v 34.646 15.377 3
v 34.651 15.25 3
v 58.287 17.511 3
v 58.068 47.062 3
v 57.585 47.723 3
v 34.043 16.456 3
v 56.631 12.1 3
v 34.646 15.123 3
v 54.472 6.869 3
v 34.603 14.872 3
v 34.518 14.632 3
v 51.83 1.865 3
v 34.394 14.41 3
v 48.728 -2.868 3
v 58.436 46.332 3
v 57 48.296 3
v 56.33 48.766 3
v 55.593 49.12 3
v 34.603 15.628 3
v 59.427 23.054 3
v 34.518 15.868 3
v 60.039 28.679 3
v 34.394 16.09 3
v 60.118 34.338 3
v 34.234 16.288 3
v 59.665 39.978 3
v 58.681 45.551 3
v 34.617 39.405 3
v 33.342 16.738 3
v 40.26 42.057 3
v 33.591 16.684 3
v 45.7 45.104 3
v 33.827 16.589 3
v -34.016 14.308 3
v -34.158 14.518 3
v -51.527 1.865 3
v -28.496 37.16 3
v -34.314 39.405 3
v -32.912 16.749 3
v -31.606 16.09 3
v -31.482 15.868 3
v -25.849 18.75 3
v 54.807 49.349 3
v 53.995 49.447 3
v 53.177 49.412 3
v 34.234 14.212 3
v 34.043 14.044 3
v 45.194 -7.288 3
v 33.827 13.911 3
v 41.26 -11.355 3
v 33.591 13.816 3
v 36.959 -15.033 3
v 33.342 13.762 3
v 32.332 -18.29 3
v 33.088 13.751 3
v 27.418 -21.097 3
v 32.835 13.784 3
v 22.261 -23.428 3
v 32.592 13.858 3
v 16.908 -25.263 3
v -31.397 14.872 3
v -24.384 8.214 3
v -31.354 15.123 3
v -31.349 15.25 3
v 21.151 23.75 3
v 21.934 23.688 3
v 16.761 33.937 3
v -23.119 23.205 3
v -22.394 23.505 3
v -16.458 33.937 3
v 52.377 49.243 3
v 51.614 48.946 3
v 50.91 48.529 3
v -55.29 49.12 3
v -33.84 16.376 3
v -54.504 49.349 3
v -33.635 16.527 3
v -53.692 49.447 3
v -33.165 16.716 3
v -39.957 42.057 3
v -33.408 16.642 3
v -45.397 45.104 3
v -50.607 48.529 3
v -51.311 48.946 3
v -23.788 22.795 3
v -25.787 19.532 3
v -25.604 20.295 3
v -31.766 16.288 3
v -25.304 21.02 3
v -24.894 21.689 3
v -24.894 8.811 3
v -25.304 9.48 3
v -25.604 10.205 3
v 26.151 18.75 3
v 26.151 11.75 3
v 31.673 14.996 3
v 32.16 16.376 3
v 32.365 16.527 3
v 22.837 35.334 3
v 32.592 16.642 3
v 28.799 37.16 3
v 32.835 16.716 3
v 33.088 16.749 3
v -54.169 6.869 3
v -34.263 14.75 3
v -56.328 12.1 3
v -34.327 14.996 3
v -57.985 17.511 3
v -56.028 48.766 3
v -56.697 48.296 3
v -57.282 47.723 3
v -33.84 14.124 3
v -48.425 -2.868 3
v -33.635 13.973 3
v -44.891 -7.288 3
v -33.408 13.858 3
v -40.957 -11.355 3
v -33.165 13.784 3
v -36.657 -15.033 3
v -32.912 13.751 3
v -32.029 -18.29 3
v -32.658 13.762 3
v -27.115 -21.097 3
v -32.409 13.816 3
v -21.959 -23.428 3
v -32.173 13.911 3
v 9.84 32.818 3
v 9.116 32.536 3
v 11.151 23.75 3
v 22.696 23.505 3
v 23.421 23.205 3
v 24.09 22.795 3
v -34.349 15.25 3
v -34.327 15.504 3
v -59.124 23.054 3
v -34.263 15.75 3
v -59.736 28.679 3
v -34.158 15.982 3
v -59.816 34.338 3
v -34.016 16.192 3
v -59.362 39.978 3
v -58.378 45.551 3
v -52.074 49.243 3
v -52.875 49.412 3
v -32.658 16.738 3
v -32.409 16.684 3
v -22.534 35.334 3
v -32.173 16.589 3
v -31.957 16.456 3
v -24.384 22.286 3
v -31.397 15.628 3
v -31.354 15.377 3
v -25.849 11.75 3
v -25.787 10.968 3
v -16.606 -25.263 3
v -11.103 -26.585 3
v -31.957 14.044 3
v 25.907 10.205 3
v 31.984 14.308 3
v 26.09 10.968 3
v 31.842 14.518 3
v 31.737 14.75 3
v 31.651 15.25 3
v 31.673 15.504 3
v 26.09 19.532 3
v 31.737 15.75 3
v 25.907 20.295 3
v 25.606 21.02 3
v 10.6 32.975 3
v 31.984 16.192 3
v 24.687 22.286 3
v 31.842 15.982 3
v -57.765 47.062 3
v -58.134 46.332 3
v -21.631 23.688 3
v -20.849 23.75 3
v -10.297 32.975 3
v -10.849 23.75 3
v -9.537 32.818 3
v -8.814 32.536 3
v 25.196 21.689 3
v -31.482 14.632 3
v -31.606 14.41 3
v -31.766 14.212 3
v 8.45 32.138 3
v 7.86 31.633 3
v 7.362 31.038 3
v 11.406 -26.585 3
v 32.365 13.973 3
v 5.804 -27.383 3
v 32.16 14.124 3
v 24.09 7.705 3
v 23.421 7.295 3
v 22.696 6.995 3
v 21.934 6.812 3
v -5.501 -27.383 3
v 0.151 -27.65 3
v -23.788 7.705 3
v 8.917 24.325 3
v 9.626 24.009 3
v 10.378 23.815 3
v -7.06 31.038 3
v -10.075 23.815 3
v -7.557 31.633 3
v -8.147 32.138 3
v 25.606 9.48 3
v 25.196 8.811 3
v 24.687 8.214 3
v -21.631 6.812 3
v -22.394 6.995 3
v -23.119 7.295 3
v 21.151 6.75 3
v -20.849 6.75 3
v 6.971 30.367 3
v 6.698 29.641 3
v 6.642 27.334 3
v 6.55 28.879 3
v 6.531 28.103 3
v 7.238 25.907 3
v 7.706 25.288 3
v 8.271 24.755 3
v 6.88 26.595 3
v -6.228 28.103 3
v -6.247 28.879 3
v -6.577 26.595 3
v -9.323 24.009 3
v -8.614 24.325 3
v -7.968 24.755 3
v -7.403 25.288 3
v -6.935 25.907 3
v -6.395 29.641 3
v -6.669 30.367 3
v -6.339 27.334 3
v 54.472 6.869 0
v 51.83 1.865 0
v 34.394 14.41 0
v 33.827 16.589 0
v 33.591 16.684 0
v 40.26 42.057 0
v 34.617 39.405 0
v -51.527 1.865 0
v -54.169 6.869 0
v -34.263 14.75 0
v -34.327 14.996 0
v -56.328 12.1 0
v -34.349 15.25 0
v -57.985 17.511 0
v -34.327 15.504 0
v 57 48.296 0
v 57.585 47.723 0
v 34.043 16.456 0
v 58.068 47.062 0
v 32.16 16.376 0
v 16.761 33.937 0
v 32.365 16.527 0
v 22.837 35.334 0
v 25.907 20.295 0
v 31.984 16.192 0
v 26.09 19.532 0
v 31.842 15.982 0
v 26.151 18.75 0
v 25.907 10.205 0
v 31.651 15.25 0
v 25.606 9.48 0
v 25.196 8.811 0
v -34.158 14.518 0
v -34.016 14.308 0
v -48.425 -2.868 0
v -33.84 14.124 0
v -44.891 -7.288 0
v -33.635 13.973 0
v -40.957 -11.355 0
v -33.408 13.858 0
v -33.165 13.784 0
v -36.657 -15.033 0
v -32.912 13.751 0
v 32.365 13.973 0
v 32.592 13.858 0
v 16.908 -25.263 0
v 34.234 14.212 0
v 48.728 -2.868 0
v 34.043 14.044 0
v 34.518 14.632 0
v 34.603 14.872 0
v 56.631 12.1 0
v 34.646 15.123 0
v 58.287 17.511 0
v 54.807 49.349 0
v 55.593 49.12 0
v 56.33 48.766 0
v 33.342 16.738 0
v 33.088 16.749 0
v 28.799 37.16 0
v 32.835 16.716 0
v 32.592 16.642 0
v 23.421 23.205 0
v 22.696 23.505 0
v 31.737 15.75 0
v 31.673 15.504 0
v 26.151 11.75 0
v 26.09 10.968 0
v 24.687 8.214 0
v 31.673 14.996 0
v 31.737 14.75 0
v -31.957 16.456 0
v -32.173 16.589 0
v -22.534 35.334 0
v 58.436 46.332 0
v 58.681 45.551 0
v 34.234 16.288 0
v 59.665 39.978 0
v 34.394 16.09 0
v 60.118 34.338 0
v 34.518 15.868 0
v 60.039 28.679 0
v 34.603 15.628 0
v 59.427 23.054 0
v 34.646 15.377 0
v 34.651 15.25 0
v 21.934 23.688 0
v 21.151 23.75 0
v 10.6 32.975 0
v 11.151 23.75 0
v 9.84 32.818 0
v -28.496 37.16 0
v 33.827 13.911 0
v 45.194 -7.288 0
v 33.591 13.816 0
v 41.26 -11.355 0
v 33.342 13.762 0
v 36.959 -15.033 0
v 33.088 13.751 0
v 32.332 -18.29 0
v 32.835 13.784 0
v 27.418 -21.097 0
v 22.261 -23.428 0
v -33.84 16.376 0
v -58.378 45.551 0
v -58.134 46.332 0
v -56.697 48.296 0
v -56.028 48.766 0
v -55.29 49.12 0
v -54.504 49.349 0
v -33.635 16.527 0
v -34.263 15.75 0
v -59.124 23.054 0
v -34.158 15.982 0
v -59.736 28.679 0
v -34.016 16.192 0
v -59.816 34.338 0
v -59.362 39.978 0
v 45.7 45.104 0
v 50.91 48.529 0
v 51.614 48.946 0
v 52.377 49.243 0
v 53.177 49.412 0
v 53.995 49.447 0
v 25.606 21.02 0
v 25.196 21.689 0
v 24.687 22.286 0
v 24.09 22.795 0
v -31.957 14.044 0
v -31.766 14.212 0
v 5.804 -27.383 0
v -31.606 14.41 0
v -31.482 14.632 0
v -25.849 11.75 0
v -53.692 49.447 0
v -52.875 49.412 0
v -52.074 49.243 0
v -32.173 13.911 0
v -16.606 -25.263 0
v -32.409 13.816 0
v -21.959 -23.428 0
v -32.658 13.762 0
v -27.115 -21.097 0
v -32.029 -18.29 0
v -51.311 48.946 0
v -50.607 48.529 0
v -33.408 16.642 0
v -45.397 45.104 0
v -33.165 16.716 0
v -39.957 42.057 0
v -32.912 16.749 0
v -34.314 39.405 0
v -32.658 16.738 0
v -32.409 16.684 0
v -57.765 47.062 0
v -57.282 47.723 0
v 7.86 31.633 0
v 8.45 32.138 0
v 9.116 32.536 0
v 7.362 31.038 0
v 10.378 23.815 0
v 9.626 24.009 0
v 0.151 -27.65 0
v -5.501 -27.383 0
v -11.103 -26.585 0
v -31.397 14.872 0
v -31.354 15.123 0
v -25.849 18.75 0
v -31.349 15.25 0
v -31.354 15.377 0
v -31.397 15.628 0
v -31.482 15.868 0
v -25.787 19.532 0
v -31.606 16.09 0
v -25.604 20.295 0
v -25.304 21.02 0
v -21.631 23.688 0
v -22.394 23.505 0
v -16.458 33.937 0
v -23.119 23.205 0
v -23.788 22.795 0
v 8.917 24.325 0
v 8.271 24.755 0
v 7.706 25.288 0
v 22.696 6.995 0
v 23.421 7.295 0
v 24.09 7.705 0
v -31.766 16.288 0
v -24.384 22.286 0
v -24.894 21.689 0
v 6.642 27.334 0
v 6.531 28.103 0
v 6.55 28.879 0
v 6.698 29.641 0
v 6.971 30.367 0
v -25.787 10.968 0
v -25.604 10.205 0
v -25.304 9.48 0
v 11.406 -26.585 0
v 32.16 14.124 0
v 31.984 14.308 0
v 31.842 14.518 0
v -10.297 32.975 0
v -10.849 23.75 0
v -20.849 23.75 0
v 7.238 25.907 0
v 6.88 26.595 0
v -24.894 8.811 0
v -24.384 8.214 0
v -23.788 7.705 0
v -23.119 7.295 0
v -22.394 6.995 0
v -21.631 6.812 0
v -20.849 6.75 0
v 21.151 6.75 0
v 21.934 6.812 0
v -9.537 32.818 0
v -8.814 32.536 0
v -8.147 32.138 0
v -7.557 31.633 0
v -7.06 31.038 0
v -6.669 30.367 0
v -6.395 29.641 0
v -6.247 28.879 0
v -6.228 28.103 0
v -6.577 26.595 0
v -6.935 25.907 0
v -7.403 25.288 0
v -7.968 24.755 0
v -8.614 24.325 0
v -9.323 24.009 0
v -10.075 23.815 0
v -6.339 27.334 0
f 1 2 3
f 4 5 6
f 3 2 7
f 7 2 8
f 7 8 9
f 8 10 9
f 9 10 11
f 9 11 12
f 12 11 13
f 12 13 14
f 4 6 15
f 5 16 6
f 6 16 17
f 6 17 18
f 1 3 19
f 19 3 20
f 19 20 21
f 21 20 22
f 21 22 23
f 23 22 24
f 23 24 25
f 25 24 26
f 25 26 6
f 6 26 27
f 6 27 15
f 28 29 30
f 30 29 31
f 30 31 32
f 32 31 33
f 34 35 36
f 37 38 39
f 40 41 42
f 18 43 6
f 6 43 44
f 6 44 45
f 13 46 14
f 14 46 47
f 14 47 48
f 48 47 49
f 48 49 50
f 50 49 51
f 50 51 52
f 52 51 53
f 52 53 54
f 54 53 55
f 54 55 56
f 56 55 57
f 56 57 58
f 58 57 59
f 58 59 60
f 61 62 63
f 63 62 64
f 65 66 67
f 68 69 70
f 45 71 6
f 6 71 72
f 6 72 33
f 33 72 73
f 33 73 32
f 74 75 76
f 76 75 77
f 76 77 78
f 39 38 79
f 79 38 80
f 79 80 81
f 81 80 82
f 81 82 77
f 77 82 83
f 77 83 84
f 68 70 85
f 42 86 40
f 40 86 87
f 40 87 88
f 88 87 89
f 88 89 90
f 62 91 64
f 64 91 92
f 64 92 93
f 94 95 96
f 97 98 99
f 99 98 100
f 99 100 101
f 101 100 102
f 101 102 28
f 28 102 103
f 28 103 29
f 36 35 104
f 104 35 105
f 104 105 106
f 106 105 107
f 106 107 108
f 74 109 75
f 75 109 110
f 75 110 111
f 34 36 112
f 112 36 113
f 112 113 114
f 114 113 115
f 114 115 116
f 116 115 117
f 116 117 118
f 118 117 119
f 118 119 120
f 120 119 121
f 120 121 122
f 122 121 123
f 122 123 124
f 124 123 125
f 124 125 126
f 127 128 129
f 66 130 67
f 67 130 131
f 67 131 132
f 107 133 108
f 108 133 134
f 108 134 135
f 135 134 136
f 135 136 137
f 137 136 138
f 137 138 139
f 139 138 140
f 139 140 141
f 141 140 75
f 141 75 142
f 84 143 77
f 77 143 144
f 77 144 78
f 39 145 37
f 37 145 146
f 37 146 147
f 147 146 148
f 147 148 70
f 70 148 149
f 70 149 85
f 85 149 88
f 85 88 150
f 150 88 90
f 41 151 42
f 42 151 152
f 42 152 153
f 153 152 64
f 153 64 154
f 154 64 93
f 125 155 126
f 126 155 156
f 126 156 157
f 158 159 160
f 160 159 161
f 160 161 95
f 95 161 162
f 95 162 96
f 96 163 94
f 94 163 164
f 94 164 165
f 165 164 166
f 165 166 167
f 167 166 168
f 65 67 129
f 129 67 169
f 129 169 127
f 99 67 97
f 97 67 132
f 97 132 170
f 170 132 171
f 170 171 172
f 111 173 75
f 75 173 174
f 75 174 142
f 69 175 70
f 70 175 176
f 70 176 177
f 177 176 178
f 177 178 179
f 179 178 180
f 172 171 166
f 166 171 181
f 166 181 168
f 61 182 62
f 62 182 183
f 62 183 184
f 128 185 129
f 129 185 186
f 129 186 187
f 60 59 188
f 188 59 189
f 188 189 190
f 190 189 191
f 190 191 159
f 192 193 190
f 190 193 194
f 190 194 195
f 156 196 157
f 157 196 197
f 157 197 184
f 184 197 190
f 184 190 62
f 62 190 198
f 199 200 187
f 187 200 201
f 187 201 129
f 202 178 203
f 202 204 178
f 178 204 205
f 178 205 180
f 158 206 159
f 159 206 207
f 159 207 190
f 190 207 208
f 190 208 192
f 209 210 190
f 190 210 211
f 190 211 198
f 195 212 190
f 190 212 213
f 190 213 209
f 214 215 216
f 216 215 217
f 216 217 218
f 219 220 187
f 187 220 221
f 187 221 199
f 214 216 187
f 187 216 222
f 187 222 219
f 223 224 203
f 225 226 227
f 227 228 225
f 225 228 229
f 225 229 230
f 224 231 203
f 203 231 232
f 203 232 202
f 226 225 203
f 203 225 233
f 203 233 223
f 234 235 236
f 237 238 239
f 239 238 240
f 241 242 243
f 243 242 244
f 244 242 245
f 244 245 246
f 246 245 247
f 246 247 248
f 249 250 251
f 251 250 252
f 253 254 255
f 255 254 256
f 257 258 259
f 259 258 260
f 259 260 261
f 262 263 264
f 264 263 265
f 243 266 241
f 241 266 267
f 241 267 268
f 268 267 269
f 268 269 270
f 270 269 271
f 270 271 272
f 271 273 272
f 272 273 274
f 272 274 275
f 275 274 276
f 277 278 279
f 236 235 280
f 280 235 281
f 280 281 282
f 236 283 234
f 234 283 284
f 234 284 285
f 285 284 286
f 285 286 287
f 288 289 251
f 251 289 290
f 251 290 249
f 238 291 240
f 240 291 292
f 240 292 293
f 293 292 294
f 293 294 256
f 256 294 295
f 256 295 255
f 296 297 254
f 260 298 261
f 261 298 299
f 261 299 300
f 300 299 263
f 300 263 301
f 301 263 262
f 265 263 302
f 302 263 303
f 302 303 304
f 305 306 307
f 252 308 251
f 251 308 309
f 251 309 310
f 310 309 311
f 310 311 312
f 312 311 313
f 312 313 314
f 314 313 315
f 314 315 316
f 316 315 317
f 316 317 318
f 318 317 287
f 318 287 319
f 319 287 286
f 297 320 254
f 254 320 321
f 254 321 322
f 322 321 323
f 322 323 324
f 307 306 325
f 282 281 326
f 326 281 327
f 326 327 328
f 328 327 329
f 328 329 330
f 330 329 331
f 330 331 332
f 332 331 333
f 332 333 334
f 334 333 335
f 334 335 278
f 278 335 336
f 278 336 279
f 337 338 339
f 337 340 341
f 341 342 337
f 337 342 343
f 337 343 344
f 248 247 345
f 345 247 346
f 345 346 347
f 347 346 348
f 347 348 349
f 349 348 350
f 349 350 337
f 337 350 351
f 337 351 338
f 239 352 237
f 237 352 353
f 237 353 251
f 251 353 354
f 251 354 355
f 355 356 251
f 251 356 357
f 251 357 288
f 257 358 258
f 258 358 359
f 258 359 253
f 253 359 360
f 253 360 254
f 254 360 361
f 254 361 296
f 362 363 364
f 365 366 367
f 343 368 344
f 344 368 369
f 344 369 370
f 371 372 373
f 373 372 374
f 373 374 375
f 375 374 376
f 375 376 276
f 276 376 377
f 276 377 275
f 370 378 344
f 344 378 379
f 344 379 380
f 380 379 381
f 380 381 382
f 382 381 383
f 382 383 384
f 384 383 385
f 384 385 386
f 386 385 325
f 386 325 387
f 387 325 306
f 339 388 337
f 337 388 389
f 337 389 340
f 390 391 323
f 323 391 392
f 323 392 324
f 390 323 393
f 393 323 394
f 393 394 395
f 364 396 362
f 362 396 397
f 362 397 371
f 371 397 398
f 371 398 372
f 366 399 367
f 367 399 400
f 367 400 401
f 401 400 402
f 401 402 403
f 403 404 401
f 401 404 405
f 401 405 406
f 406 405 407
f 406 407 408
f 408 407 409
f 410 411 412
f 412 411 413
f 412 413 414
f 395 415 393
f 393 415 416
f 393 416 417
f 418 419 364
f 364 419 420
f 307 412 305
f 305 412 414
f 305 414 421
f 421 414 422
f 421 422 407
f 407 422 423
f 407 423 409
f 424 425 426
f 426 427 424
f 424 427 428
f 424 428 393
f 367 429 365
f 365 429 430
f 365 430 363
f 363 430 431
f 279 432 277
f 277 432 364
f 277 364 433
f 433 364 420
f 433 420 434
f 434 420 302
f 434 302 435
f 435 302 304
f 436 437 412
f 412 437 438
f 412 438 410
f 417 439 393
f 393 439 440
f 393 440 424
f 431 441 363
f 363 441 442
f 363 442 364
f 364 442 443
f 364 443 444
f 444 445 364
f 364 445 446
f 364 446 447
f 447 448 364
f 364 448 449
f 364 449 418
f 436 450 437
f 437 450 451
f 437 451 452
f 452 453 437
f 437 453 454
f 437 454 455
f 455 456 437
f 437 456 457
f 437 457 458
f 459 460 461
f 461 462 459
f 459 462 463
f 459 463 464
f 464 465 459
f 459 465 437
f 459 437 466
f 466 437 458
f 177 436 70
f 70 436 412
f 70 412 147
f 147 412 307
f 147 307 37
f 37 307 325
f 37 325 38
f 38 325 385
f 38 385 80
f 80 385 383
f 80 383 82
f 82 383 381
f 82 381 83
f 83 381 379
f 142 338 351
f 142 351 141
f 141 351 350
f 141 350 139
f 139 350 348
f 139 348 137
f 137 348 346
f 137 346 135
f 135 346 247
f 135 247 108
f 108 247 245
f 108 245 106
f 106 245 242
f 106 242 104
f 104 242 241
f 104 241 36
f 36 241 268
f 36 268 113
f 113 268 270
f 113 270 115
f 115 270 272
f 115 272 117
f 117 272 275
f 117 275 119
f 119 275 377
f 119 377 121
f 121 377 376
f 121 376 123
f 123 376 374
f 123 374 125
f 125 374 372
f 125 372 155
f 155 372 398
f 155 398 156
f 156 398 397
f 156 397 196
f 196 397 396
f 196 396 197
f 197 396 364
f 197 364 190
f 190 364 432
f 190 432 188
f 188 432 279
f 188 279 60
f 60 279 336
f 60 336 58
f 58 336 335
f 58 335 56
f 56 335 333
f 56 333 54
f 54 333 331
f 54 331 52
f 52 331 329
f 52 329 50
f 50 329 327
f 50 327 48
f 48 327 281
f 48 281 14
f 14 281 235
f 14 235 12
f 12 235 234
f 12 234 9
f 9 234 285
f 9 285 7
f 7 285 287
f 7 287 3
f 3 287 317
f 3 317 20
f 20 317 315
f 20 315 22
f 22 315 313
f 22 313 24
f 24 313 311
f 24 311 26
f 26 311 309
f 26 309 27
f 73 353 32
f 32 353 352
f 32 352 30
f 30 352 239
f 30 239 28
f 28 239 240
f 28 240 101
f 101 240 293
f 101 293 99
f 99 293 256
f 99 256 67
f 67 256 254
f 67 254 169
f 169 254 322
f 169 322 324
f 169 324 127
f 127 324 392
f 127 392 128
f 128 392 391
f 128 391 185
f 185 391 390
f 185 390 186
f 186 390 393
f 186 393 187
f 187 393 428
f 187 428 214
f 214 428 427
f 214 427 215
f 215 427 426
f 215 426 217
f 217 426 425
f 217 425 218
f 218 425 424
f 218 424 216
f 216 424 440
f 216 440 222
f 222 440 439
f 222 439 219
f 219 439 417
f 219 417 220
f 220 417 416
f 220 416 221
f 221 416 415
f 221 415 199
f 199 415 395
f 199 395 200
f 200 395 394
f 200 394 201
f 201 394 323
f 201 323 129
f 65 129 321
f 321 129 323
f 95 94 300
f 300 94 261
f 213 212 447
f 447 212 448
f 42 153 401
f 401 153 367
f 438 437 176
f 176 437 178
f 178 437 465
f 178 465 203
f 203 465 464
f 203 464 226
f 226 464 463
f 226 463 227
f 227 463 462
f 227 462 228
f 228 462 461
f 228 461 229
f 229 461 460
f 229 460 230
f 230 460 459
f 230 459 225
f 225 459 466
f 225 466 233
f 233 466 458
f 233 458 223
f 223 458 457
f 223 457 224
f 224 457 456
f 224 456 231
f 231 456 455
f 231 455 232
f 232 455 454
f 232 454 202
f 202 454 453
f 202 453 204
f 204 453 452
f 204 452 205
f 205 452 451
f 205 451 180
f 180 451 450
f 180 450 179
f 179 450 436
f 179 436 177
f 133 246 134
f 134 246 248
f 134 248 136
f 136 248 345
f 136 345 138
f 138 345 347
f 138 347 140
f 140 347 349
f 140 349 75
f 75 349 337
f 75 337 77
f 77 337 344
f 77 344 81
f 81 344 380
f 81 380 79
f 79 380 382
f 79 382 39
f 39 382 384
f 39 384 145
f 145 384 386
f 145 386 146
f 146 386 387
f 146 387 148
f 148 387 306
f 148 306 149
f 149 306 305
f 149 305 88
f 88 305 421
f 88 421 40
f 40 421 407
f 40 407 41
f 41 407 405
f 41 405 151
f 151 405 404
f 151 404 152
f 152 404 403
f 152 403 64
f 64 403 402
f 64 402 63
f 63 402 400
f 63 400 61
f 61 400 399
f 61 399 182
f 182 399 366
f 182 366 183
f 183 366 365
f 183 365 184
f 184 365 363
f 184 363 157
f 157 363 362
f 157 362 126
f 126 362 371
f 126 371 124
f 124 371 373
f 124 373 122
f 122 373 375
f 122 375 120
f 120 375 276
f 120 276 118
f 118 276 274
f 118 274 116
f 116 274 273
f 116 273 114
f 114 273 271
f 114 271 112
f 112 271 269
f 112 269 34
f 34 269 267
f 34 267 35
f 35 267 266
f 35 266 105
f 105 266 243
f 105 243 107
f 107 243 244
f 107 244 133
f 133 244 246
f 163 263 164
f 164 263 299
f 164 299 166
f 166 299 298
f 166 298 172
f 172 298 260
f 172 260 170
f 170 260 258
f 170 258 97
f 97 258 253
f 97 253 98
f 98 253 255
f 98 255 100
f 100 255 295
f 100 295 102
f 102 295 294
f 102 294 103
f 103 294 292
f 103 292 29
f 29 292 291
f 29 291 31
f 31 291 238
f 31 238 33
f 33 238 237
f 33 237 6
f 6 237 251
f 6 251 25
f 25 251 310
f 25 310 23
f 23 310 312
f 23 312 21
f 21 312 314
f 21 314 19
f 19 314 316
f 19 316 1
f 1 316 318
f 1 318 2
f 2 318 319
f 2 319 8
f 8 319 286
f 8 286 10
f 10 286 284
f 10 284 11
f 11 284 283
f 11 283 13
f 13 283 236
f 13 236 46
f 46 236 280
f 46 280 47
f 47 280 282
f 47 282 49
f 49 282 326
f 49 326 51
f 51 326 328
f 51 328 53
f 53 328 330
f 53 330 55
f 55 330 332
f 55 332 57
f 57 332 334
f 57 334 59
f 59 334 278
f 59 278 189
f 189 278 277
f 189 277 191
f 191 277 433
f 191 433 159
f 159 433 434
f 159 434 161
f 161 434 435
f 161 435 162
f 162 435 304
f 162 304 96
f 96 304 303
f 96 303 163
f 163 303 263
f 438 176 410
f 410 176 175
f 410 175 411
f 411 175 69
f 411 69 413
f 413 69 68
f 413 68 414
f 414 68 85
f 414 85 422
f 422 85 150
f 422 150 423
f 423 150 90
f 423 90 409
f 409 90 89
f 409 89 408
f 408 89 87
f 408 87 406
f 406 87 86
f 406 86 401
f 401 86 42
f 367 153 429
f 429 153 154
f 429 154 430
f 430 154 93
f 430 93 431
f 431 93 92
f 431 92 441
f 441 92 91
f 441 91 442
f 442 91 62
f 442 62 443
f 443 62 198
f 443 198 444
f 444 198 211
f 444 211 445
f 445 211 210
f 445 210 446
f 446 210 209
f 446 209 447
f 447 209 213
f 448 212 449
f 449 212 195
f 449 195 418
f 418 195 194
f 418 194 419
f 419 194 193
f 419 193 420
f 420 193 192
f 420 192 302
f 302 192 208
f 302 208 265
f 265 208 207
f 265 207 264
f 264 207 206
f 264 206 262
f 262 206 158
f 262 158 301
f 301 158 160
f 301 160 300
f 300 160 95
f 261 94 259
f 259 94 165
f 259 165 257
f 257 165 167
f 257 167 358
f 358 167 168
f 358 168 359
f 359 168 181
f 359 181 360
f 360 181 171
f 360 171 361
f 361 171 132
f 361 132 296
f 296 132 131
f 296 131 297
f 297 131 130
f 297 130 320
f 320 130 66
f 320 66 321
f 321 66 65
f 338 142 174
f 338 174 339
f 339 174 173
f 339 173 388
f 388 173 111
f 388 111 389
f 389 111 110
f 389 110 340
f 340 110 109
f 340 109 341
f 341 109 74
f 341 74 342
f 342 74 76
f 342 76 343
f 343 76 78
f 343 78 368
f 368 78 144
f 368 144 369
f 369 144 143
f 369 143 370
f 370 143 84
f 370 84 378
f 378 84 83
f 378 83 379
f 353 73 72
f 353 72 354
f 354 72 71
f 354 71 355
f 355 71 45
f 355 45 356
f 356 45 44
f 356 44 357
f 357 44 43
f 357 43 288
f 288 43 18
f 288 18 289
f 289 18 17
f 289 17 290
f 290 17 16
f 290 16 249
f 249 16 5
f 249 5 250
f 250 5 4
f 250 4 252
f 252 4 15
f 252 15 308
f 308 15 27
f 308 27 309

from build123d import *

# Parameters (mm, degrees)
SKETCH1_R           = 1.5
BOSS_EXTRUDE1_DEPTH = 3
FILLET4_R           = 5


with BuildPart() as part:
    # Sketch1 → Boss-Extrude1 (new body)
    with BuildSketch(Plane.XY):
        with BuildLine():
            Line((-25.848592033, 6.75), (26.151407967, 6.75))
            Line((26.151407967, 6.75), (26.151407967, 23.75))
            Line((26.151407967, 23.75), (11.151407967, 23.75))
            ThreePointArc((11.151407967, 23.75), (6.530900978, 28.102570311), (10.600025023, 32.974549649))
            ThreePointArc((10.600025023, 32.974549649), (35.015964593, 39.57666935), (56.532965215, 52.8712086))
            ThreePointArc((56.532965215, 52.8712086), (0.151407967, -27.65), (-56.23014928, 52.8712086))
            ThreePointArc((-56.23014928, 52.8712086), (-34.713148658, 39.57666935), (-10.297209088, 32.974549649))
            ThreePointArc((-10.297209088, 32.974549649), (-6.228085043, 28.102570311), (-10.848592033, 23.75))
            Line((-10.848592033, 23.75), (-25.848592033, 23.75))
            Line((-25.848592033, 23.75), (-25.848592033, 6.75))
        make_face()
        with Locations((-32.848592033, 15.25)):
            Circle(SKETCH1_R, mode=Mode.SUBTRACT)
        with Locations((33.151407967, 15.25)):
            Circle(SKETCH1_R, mode=Mode.SUBTRACT)
    extrude(amount=BOSS_EXTRUDE1_DEPTH)

    # Fillet4
    fillet4_edges = [part.edges().sort_by_distance(p)[0] for p in [
        (-25.848592033, 23.75, 1.5),
        (-25.848592033, 6.75, 1.5),
        (26.151407967, 6.75, 1.5),
        (26.151407967, 23.75, 1.5),
        (56.532965215, 52.8712086, 1.5),
        (-56.23014928, 52.8712086, 1.5),
    ]]
    fillet(fillet4_edges, radius=FILLET4_R)


solid = part.part
